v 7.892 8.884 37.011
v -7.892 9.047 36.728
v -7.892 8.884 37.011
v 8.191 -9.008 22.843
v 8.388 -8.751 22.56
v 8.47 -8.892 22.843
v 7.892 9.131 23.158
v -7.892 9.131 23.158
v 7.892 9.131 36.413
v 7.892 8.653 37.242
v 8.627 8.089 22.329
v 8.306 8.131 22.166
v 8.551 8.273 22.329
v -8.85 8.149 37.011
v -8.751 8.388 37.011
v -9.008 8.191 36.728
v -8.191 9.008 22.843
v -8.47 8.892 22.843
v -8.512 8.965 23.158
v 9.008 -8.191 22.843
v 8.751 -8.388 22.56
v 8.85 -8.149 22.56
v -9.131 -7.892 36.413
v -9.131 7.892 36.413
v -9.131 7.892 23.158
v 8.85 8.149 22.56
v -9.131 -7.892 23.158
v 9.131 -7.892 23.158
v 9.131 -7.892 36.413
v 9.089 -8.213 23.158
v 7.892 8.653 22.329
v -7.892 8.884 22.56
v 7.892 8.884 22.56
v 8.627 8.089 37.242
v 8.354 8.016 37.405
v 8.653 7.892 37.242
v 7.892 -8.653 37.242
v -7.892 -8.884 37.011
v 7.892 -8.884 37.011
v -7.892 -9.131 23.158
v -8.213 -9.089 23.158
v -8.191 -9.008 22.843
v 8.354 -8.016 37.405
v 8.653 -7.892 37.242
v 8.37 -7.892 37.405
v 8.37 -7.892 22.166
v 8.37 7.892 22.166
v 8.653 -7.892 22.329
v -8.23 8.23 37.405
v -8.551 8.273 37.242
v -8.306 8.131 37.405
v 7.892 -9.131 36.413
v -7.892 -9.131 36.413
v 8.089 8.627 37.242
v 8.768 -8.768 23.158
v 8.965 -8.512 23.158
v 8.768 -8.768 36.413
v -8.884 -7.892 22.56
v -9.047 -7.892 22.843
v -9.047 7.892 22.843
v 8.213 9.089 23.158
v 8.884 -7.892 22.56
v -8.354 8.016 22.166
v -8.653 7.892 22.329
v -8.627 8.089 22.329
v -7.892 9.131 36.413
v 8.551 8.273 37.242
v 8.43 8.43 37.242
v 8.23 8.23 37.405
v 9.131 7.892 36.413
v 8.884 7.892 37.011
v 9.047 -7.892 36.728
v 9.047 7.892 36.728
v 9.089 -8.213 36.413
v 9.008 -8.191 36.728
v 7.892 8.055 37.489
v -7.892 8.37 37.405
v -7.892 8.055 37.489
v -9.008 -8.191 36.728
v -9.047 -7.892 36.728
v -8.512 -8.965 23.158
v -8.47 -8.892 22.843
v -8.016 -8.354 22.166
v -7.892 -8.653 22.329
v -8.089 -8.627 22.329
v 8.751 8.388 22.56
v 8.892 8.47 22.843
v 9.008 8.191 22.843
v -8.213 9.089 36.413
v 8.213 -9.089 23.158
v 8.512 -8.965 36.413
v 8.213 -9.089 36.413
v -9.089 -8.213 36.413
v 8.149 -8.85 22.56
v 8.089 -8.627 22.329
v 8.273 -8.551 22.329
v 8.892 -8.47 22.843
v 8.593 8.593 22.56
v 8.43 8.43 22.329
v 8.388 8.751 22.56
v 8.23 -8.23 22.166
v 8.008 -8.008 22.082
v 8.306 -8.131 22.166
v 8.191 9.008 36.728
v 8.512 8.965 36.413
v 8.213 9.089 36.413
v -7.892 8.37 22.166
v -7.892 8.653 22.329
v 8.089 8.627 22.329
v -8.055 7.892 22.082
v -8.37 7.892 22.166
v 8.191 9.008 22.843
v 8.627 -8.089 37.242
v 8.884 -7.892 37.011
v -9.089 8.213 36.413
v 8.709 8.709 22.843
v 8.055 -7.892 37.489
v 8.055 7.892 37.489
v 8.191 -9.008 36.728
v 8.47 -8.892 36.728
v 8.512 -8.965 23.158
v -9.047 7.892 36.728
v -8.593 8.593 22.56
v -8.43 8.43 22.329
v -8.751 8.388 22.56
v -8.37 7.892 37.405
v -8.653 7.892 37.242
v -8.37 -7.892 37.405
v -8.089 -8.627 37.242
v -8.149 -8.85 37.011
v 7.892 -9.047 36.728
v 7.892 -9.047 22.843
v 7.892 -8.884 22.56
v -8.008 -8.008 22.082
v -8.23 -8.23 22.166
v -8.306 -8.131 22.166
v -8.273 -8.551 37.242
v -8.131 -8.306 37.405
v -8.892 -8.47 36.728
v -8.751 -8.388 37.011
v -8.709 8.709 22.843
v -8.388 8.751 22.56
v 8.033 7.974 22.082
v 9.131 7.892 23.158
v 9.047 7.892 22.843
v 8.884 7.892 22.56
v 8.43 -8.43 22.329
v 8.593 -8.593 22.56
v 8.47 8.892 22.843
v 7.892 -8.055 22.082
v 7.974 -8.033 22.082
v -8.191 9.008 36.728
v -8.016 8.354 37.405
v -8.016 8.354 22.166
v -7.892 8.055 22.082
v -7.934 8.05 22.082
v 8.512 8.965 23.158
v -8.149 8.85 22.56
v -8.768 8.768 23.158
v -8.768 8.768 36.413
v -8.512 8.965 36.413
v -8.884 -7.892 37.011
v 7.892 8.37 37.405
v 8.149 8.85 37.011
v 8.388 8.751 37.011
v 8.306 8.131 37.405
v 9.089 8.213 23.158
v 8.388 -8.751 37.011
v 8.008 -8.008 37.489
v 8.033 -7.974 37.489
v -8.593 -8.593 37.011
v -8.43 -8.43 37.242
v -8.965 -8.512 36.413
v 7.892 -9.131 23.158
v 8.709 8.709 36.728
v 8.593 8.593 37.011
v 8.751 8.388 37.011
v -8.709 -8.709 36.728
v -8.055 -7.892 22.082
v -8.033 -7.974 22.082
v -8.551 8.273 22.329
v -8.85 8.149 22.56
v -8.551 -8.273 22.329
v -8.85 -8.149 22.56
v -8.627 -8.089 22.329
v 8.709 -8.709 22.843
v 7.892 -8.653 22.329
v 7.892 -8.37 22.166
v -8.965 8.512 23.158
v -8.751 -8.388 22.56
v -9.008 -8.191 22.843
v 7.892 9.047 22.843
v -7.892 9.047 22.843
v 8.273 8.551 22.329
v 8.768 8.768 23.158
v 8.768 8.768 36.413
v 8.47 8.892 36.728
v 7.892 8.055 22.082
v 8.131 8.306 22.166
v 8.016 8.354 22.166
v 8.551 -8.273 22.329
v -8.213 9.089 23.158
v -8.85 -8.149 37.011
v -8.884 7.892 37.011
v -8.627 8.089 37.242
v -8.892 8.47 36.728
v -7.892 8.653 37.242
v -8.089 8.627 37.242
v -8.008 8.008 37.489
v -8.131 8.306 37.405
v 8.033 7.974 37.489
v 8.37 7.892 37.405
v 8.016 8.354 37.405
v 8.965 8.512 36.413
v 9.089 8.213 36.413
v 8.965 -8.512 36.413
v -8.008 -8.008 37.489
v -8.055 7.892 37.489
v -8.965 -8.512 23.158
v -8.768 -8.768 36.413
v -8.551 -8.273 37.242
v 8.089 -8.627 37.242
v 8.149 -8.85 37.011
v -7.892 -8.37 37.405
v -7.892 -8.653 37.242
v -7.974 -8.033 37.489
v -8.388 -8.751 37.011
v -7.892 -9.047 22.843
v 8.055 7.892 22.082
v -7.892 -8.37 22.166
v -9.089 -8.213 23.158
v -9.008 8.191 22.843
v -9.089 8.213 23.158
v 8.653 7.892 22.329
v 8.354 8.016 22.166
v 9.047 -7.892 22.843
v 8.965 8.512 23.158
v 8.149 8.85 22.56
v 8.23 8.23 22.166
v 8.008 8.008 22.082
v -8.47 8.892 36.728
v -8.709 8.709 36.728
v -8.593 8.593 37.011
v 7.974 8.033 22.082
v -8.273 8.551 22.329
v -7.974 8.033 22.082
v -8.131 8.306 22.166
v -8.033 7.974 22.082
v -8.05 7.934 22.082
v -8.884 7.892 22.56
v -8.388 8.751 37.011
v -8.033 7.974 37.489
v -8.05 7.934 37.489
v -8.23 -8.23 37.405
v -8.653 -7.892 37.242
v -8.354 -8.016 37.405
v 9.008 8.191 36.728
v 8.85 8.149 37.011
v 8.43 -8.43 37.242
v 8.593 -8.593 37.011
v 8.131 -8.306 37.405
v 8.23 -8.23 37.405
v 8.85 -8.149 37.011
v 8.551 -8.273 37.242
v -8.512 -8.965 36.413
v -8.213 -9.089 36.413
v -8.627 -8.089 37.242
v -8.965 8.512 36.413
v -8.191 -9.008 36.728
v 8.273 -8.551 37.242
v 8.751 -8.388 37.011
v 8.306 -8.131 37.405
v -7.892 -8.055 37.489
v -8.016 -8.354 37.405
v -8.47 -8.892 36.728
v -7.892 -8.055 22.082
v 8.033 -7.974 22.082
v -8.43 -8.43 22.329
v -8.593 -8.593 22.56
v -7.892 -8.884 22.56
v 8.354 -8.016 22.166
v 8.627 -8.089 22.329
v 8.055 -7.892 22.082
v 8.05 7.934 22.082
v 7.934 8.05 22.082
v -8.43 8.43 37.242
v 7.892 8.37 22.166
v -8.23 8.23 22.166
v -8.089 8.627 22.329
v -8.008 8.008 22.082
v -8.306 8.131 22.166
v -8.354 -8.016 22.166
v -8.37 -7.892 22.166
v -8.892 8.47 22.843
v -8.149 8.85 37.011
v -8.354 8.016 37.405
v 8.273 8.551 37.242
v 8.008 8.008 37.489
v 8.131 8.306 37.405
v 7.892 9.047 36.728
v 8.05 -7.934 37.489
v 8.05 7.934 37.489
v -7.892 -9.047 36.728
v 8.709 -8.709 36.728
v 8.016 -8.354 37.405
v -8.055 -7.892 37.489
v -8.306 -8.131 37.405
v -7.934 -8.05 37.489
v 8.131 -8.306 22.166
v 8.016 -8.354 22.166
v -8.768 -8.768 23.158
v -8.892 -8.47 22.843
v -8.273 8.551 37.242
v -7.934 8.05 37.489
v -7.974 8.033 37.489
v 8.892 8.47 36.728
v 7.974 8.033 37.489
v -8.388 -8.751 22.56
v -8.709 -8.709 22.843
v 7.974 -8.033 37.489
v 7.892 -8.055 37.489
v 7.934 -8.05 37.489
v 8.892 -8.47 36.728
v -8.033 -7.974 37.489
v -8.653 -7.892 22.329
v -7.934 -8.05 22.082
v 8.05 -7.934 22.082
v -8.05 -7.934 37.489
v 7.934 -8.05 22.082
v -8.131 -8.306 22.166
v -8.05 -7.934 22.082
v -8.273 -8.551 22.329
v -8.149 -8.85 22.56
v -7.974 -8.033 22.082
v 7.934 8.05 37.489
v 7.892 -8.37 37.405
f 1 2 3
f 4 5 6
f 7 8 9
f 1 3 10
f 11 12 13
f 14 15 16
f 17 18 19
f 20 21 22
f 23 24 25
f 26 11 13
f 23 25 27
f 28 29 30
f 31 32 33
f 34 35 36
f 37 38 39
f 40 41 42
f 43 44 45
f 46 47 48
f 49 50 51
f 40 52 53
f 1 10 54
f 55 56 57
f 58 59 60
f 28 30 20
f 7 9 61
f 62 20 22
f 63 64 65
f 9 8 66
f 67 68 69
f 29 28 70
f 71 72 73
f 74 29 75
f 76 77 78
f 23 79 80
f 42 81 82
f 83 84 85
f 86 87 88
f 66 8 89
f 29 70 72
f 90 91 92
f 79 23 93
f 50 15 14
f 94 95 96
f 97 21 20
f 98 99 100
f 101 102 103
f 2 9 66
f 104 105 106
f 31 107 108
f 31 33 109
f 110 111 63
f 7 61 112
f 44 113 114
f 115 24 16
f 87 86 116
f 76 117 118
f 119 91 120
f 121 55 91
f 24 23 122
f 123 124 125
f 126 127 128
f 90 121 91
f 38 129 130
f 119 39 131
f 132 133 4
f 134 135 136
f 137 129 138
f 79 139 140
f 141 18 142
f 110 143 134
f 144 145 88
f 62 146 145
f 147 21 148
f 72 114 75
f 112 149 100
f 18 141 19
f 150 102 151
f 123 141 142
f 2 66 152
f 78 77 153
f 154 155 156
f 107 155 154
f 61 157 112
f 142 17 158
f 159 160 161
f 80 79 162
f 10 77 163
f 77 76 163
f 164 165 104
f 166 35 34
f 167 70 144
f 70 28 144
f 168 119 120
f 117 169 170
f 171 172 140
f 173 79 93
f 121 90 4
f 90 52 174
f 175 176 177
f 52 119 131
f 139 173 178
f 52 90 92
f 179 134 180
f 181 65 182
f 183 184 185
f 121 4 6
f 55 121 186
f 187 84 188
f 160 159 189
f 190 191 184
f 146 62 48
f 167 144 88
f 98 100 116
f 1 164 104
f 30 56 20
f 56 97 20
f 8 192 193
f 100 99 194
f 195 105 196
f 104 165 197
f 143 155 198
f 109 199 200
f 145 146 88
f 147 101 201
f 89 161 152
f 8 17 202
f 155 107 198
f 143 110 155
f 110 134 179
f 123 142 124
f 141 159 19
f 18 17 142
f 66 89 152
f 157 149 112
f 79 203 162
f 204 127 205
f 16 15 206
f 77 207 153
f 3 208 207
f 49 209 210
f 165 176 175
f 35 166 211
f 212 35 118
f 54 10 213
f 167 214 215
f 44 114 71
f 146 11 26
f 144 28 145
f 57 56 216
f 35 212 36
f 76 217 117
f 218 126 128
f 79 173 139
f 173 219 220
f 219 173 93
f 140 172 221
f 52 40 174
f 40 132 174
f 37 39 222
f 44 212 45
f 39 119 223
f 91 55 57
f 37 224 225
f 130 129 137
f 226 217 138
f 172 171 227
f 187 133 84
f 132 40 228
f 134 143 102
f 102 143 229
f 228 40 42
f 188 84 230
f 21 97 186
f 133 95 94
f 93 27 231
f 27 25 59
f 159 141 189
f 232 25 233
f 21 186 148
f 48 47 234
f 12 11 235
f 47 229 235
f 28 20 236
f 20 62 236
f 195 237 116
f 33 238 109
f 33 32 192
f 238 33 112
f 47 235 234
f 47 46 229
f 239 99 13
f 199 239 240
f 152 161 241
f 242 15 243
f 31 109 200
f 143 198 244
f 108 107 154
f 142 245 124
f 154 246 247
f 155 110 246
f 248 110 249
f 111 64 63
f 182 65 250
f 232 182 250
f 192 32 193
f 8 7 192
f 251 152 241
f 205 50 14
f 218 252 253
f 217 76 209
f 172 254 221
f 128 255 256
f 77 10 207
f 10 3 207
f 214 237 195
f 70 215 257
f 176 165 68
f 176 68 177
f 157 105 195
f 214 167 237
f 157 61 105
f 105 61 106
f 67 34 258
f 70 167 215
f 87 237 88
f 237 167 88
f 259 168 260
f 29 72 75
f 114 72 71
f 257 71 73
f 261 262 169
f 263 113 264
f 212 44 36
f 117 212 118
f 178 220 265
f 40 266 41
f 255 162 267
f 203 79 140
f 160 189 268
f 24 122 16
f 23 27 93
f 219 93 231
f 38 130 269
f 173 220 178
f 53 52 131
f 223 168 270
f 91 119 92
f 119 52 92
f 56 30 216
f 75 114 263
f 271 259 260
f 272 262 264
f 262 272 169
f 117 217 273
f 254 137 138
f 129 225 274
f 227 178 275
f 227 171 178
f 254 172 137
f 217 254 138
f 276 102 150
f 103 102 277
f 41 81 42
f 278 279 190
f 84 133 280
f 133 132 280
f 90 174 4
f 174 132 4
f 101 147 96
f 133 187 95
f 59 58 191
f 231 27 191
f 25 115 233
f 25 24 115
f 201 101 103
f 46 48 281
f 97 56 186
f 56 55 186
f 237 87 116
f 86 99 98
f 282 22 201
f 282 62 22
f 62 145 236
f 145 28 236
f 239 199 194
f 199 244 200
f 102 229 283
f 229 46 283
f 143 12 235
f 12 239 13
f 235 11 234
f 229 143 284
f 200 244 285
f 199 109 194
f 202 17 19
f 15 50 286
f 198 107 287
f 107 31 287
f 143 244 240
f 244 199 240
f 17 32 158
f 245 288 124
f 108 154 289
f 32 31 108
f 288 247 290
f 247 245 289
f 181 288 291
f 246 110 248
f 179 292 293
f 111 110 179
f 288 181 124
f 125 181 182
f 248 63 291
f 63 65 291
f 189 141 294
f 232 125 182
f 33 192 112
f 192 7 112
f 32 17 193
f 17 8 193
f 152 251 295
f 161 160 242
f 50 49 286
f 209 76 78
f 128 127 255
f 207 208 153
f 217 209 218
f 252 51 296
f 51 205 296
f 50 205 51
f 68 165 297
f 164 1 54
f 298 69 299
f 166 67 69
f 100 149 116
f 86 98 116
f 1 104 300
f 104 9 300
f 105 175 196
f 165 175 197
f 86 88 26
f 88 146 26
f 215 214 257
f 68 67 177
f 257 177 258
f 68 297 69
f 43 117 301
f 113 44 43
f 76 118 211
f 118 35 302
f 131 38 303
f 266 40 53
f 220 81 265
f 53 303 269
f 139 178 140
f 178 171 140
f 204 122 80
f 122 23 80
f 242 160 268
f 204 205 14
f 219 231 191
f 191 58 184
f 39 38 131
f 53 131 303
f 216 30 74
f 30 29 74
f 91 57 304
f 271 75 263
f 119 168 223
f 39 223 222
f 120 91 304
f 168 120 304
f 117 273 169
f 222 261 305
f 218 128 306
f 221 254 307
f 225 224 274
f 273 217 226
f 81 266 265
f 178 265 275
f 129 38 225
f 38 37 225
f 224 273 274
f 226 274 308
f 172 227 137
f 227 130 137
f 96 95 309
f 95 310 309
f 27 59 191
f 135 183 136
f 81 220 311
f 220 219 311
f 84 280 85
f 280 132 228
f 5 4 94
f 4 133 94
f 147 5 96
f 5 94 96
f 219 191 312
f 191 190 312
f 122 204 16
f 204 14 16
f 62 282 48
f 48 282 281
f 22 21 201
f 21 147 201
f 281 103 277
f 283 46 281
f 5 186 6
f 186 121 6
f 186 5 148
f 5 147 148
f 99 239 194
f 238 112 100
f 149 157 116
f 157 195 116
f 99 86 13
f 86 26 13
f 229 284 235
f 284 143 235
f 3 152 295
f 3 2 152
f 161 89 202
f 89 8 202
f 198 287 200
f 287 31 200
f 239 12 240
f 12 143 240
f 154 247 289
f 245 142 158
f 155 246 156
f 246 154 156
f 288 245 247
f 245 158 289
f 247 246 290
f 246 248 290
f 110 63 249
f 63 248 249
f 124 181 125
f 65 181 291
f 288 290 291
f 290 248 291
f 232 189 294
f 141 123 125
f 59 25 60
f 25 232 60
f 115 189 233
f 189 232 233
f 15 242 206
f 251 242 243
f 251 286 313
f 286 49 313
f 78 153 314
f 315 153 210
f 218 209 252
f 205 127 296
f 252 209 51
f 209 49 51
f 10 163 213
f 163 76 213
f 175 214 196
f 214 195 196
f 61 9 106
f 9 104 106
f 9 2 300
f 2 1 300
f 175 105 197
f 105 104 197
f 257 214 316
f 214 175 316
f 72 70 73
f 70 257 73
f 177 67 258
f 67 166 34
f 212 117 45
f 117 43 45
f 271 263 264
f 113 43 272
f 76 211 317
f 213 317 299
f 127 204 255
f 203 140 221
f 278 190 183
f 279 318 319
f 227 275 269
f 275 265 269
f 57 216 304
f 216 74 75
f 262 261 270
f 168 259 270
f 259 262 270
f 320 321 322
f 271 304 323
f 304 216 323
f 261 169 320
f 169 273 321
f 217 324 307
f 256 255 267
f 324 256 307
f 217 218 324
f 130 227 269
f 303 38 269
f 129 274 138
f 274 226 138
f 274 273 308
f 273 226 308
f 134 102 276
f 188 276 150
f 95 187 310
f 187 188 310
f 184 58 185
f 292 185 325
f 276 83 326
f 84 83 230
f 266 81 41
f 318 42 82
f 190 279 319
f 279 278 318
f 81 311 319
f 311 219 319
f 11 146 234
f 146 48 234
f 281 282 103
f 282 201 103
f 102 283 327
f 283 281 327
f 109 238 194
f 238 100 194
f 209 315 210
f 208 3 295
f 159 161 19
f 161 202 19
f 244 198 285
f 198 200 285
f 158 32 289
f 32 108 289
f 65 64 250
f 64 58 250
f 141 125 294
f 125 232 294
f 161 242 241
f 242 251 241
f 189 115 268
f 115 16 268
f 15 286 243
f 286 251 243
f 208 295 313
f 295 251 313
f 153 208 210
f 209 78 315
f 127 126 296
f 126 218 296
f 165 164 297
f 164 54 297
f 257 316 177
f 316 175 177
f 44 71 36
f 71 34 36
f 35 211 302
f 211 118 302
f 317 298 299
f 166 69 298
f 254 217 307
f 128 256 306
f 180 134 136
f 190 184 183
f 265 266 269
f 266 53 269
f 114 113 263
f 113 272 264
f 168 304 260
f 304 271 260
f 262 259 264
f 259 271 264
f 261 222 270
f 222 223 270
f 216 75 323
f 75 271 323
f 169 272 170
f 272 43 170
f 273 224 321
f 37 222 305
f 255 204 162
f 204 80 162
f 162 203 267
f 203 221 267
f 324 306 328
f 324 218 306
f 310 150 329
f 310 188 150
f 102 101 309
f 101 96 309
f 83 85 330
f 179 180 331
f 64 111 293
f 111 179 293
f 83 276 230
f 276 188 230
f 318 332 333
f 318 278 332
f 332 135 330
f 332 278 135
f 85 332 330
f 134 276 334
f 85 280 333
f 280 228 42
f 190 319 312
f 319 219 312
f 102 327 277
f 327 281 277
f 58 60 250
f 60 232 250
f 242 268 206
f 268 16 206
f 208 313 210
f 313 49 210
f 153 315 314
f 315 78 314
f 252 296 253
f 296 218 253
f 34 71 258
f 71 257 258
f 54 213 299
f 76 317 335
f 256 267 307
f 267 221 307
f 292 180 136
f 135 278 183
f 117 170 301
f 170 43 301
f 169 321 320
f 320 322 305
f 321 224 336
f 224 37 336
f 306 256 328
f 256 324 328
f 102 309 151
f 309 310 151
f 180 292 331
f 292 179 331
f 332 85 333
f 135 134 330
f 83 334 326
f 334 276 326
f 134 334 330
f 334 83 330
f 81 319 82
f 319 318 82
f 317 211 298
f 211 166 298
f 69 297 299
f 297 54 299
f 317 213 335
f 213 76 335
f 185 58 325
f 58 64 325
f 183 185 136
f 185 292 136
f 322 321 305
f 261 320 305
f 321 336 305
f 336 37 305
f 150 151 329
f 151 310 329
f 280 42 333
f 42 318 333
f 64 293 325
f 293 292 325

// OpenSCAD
// file: def.scad
round_radius = 1.25;
sticker_margin = 3;
sticker_round_radius = 1;
total_size = 75;
base_size = (total_size - round_radius * 4) / (4 + sqrt(2));
cut1_dis = base_size * sqrt(2) / 2;
cut2_dis = base_size * (1 + sqrt(2) / 2);
cut2_corner_dis = base_size * (sqrt(2) / 2 * sqrt(3) + 1 / 3 * sqrt(3));
inf = total_size * 10;
// main file
include <def.scad>

module center_block() {
    minkowski() {
        difference() {
            intersection() {
                cube([total_size - round_radius * 2, total_size - round_radius * 2, total_size - round_radius * 2], center = true);
                translate([0, 0, cut2_dis + round_radius])
                    translate([-inf, -inf, 0])
                        cube([inf * 2, inf * 2, inf]);
            }
            for (vec = [[90, 0, 0], [-90, 0, 0], [0, 90, 0], [0, -90, 0]])
                rotate(vec)
                    translate([0, 0, cut1_dis - round_radius])
                        translate([-inf, -inf, 0])
                            cube([inf * 2, inf * 2, inf]);
        }
        sphere(round_radius, $fn = 24);
    }
}

center_block();
